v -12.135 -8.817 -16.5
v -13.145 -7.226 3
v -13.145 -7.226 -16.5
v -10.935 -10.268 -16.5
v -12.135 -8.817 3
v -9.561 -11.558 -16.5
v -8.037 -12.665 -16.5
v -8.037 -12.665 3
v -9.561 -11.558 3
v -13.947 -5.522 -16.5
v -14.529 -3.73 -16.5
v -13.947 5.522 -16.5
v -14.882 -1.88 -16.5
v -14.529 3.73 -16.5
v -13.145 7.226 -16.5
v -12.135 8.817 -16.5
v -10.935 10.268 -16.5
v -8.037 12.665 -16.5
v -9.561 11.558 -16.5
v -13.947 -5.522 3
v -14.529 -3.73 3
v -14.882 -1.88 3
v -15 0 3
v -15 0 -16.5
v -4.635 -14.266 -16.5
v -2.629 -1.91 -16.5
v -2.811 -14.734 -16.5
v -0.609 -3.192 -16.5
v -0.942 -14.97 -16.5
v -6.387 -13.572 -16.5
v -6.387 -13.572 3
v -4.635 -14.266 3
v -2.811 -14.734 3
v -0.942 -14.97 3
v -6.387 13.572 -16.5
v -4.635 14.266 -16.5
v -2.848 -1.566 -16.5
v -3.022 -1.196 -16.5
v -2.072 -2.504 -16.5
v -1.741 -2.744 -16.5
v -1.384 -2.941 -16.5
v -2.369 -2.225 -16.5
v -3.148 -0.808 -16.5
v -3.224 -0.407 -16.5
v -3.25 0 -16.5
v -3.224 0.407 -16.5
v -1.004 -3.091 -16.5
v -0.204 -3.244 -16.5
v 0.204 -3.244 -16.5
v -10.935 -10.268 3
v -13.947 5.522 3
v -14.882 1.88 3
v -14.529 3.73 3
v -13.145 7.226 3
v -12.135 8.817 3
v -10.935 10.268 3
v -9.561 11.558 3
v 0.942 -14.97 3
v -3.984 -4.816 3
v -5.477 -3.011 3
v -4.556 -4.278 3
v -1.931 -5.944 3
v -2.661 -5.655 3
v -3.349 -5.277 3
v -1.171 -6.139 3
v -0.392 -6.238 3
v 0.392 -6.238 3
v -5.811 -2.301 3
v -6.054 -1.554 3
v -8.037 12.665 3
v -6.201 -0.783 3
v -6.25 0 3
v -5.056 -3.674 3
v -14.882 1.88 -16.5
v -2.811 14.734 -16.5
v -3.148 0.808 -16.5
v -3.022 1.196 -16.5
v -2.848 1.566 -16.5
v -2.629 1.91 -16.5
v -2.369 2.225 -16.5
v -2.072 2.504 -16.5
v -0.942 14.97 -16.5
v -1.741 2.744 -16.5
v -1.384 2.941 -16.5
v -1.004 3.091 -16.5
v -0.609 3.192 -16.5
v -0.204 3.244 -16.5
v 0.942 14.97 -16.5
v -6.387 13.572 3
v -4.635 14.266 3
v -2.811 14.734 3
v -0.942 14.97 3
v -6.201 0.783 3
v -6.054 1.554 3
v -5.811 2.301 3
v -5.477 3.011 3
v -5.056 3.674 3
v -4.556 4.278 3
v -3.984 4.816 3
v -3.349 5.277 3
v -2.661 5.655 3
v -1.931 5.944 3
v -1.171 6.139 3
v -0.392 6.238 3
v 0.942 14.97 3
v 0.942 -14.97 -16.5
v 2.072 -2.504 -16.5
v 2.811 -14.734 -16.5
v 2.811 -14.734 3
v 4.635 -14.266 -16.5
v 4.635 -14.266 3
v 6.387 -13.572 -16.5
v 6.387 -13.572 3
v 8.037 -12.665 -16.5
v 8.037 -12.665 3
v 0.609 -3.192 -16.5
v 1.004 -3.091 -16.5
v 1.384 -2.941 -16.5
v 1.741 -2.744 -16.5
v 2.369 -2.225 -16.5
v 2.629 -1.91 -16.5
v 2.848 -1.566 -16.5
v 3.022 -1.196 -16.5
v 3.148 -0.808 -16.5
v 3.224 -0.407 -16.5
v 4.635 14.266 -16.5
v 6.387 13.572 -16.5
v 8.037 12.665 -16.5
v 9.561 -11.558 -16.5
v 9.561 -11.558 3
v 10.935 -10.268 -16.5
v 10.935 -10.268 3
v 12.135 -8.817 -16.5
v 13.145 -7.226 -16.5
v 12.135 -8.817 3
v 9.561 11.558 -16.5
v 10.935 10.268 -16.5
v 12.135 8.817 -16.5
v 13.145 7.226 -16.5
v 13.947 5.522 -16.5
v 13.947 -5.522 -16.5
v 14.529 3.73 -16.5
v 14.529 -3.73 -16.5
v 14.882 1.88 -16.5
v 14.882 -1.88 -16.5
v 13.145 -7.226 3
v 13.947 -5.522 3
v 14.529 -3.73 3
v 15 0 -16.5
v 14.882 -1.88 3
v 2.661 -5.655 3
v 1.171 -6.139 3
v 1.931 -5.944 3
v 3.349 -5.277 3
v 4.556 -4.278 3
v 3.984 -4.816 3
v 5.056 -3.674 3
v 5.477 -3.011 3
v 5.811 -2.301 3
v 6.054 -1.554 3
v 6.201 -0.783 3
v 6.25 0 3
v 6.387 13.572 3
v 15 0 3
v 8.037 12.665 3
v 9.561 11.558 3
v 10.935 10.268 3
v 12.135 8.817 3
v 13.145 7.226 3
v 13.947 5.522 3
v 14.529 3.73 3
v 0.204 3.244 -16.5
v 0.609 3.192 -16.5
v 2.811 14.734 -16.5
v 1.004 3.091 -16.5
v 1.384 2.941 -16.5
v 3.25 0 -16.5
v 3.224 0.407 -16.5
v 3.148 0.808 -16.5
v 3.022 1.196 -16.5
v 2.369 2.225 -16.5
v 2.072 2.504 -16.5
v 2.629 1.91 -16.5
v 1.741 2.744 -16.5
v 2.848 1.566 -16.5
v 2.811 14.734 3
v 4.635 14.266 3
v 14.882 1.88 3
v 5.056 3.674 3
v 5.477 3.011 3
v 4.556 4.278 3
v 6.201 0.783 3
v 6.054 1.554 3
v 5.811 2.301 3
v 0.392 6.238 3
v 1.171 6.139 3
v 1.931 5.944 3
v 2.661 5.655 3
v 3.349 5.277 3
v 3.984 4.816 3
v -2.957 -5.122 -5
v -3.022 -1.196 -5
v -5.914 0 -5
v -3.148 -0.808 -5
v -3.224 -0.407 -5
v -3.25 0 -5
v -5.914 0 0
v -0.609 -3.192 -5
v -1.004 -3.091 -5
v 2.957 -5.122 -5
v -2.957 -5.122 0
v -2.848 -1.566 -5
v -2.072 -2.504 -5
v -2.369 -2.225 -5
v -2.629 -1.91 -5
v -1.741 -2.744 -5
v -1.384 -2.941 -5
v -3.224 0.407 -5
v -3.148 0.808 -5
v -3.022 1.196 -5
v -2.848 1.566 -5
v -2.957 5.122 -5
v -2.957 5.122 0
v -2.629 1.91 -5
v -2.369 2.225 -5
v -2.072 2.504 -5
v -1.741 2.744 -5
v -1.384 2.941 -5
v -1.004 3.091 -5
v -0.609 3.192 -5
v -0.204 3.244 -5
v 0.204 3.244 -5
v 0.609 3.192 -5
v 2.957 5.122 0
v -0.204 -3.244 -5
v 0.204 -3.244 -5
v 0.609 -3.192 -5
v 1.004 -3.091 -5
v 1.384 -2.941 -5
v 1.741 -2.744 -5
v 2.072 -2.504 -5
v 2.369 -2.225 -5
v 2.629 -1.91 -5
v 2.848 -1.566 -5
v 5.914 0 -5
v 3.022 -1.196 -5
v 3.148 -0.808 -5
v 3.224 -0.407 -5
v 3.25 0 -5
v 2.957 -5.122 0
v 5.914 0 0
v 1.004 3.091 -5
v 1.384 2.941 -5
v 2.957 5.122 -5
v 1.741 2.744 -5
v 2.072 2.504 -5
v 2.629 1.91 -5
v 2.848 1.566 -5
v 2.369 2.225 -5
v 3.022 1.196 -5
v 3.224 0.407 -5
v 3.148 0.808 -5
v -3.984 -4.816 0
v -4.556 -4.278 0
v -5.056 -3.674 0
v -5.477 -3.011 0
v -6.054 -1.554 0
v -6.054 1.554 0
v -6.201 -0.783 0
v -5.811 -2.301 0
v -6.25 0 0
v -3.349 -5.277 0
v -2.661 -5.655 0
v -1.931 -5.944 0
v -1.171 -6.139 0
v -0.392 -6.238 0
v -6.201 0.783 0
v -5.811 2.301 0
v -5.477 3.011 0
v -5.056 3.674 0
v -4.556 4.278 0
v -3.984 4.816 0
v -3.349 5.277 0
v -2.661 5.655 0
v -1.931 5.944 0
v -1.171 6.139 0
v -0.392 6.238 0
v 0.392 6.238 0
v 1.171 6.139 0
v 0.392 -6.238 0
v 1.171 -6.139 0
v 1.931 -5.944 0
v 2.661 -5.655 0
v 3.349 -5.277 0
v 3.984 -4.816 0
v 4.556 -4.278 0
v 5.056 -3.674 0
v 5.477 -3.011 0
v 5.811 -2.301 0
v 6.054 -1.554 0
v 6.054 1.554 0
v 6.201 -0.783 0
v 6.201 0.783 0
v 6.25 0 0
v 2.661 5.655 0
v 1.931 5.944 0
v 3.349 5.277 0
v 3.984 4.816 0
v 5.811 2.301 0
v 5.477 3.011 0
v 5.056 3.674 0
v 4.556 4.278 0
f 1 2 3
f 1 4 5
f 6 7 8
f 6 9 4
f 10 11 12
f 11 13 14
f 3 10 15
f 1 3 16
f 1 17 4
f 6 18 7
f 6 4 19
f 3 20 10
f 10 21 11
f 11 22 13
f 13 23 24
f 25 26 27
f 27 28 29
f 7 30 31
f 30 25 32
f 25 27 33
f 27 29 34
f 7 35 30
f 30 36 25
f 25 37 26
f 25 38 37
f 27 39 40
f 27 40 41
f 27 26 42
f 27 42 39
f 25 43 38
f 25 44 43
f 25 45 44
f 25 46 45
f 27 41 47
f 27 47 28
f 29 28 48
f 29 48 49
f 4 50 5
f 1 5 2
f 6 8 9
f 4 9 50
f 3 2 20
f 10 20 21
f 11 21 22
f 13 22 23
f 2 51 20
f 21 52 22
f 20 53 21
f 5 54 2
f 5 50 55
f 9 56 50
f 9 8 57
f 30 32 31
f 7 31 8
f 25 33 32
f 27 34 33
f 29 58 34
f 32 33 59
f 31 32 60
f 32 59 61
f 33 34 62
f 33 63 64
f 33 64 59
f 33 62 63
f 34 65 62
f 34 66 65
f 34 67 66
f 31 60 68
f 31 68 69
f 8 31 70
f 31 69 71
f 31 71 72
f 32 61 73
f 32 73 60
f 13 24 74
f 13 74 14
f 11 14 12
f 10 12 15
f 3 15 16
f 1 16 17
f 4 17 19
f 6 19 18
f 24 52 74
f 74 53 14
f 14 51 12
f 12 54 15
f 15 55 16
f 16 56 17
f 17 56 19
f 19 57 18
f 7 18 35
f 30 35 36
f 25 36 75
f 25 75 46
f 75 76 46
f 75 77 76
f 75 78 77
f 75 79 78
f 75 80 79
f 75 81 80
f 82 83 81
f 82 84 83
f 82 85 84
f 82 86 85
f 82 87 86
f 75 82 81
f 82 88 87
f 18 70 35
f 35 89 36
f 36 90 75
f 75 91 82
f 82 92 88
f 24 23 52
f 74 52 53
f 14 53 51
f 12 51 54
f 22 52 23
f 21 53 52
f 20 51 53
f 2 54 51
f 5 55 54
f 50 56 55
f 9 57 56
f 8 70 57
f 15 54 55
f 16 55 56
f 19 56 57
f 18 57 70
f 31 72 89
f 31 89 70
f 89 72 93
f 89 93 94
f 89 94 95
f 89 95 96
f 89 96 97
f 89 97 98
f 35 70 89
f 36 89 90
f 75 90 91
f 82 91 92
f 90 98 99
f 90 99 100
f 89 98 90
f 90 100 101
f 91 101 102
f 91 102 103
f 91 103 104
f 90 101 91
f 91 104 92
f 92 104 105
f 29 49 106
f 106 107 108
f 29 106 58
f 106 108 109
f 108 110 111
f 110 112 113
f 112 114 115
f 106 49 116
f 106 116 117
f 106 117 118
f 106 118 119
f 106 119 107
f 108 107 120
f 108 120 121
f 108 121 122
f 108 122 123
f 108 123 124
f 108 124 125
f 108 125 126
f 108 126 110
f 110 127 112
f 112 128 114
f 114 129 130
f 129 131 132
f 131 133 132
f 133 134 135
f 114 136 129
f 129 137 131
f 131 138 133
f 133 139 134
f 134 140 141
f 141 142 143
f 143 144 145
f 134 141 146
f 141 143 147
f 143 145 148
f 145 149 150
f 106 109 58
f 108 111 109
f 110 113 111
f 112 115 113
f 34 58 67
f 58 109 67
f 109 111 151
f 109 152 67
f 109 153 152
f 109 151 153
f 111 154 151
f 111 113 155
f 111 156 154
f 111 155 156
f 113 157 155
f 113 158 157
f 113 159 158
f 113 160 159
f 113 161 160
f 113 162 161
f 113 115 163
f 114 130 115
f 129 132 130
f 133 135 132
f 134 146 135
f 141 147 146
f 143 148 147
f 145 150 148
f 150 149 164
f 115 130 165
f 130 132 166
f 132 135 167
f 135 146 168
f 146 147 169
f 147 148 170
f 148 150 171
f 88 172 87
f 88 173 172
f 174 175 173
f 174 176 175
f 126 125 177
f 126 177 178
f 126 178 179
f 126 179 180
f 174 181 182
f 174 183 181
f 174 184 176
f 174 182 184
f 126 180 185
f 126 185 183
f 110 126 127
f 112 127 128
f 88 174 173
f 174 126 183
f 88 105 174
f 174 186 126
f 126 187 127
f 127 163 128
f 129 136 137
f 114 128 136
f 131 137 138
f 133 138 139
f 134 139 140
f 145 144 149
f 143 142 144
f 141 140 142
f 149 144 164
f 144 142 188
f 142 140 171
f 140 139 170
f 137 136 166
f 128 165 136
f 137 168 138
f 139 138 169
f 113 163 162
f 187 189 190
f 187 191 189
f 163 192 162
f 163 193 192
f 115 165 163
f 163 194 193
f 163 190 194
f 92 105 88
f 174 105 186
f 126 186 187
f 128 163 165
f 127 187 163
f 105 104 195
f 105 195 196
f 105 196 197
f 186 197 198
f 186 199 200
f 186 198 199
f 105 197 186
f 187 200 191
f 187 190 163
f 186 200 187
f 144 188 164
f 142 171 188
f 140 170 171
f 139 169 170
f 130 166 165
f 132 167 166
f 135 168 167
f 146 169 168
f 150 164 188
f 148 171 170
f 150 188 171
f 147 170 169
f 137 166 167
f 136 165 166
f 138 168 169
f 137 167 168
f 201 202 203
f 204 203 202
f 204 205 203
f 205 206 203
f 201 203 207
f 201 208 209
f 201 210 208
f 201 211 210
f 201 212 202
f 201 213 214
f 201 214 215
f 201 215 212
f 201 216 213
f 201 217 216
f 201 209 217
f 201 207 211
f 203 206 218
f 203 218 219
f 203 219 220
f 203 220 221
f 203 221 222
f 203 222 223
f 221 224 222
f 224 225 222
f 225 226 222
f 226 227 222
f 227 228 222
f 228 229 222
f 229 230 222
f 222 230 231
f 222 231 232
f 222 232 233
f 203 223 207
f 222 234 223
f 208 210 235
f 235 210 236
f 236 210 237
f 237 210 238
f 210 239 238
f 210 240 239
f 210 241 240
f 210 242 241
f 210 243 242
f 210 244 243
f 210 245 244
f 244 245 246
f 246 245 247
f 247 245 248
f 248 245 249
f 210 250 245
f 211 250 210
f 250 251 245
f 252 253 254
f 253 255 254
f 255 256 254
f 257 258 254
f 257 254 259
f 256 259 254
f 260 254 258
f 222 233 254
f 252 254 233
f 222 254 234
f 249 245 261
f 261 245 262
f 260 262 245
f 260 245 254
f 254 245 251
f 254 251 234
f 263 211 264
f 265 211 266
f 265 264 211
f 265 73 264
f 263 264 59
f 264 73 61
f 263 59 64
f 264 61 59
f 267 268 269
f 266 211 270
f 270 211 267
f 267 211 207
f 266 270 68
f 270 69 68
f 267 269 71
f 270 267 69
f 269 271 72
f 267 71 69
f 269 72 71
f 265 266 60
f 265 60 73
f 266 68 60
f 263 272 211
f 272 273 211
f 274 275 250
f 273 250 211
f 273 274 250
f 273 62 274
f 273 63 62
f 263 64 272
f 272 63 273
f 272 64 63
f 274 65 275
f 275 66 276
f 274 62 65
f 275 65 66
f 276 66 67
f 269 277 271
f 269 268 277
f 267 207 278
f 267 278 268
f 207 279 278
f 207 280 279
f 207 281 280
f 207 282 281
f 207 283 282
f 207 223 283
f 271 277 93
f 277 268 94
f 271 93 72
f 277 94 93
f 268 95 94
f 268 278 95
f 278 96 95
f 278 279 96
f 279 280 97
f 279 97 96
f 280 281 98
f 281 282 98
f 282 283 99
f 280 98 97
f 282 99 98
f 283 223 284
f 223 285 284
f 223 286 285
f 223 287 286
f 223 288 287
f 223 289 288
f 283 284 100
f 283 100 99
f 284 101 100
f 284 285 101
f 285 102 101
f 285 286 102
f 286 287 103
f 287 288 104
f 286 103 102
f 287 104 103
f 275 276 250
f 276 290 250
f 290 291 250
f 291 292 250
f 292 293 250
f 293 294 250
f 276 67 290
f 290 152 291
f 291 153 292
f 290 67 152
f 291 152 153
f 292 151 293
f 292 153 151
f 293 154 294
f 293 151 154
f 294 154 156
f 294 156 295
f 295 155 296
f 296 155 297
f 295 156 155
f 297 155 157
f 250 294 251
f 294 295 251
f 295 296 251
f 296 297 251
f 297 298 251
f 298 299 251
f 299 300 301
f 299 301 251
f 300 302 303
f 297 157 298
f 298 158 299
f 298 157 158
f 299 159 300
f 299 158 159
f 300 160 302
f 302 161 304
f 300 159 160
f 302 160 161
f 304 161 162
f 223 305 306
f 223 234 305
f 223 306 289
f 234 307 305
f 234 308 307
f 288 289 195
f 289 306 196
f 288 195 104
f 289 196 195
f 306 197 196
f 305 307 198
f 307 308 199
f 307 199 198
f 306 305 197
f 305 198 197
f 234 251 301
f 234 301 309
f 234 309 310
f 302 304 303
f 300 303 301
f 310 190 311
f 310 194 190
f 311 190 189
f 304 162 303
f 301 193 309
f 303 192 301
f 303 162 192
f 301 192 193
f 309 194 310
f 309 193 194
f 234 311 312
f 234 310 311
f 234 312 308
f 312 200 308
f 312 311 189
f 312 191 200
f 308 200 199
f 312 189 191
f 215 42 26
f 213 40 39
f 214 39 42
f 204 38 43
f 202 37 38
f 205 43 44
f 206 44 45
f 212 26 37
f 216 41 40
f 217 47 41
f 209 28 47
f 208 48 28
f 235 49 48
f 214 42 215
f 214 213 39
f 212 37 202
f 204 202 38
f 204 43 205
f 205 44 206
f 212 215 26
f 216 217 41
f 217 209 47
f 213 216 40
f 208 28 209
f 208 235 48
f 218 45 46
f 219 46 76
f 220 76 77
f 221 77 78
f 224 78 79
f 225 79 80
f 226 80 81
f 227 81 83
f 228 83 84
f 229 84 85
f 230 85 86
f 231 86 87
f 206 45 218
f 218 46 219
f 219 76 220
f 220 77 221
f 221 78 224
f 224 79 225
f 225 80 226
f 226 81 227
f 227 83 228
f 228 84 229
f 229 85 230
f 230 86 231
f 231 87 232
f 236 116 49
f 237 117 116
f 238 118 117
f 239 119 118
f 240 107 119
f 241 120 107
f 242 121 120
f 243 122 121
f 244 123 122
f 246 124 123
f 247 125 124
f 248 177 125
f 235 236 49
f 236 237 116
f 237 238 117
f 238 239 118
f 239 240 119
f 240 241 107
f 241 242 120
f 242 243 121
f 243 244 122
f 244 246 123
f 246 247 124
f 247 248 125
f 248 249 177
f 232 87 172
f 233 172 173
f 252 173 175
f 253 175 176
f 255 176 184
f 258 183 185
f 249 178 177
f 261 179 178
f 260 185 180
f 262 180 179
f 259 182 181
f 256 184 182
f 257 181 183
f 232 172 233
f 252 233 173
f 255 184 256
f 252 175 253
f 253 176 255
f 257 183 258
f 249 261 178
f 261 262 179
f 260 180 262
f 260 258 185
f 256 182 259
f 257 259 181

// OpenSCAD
$fn = 50;

difference() {
	union() {
		translate(v = [0, 0, -16.5]) {
			cylinder(h = 19.5, r = 15.0);
		}
		#translate(v = [0, 0, -18.0]) {
			cylinder(h = 18, r = 2.875);
		}
	}
	union() {
		translate(v = [0, 0, 0]) {
			rotate(a = [0, 0, 0]) {
				difference() {
					union() {
						translate(v = [0, 0, -5]) {
							linear_extrude(height = 5) {
								polygon(points = [[5.914249999999999, 0.0], [2.957125, 5.1218907443321156], [-2.9571249999999982, 5.1218907443321156], [-5.914249999999999, 7.242867331857232e-16], [-2.9571250000000022, -5.121890744332115], [2.9571249999999956, -5.121890744332118]]);
							}
						}
					}
					union();
				}
			}
		}
		#cylinder(h = 3, r = 6.25);
		#translate(v = [0, 0, -100.0]) {
			cylinder(h = 200, r = 3.25);
		}
	}
}
